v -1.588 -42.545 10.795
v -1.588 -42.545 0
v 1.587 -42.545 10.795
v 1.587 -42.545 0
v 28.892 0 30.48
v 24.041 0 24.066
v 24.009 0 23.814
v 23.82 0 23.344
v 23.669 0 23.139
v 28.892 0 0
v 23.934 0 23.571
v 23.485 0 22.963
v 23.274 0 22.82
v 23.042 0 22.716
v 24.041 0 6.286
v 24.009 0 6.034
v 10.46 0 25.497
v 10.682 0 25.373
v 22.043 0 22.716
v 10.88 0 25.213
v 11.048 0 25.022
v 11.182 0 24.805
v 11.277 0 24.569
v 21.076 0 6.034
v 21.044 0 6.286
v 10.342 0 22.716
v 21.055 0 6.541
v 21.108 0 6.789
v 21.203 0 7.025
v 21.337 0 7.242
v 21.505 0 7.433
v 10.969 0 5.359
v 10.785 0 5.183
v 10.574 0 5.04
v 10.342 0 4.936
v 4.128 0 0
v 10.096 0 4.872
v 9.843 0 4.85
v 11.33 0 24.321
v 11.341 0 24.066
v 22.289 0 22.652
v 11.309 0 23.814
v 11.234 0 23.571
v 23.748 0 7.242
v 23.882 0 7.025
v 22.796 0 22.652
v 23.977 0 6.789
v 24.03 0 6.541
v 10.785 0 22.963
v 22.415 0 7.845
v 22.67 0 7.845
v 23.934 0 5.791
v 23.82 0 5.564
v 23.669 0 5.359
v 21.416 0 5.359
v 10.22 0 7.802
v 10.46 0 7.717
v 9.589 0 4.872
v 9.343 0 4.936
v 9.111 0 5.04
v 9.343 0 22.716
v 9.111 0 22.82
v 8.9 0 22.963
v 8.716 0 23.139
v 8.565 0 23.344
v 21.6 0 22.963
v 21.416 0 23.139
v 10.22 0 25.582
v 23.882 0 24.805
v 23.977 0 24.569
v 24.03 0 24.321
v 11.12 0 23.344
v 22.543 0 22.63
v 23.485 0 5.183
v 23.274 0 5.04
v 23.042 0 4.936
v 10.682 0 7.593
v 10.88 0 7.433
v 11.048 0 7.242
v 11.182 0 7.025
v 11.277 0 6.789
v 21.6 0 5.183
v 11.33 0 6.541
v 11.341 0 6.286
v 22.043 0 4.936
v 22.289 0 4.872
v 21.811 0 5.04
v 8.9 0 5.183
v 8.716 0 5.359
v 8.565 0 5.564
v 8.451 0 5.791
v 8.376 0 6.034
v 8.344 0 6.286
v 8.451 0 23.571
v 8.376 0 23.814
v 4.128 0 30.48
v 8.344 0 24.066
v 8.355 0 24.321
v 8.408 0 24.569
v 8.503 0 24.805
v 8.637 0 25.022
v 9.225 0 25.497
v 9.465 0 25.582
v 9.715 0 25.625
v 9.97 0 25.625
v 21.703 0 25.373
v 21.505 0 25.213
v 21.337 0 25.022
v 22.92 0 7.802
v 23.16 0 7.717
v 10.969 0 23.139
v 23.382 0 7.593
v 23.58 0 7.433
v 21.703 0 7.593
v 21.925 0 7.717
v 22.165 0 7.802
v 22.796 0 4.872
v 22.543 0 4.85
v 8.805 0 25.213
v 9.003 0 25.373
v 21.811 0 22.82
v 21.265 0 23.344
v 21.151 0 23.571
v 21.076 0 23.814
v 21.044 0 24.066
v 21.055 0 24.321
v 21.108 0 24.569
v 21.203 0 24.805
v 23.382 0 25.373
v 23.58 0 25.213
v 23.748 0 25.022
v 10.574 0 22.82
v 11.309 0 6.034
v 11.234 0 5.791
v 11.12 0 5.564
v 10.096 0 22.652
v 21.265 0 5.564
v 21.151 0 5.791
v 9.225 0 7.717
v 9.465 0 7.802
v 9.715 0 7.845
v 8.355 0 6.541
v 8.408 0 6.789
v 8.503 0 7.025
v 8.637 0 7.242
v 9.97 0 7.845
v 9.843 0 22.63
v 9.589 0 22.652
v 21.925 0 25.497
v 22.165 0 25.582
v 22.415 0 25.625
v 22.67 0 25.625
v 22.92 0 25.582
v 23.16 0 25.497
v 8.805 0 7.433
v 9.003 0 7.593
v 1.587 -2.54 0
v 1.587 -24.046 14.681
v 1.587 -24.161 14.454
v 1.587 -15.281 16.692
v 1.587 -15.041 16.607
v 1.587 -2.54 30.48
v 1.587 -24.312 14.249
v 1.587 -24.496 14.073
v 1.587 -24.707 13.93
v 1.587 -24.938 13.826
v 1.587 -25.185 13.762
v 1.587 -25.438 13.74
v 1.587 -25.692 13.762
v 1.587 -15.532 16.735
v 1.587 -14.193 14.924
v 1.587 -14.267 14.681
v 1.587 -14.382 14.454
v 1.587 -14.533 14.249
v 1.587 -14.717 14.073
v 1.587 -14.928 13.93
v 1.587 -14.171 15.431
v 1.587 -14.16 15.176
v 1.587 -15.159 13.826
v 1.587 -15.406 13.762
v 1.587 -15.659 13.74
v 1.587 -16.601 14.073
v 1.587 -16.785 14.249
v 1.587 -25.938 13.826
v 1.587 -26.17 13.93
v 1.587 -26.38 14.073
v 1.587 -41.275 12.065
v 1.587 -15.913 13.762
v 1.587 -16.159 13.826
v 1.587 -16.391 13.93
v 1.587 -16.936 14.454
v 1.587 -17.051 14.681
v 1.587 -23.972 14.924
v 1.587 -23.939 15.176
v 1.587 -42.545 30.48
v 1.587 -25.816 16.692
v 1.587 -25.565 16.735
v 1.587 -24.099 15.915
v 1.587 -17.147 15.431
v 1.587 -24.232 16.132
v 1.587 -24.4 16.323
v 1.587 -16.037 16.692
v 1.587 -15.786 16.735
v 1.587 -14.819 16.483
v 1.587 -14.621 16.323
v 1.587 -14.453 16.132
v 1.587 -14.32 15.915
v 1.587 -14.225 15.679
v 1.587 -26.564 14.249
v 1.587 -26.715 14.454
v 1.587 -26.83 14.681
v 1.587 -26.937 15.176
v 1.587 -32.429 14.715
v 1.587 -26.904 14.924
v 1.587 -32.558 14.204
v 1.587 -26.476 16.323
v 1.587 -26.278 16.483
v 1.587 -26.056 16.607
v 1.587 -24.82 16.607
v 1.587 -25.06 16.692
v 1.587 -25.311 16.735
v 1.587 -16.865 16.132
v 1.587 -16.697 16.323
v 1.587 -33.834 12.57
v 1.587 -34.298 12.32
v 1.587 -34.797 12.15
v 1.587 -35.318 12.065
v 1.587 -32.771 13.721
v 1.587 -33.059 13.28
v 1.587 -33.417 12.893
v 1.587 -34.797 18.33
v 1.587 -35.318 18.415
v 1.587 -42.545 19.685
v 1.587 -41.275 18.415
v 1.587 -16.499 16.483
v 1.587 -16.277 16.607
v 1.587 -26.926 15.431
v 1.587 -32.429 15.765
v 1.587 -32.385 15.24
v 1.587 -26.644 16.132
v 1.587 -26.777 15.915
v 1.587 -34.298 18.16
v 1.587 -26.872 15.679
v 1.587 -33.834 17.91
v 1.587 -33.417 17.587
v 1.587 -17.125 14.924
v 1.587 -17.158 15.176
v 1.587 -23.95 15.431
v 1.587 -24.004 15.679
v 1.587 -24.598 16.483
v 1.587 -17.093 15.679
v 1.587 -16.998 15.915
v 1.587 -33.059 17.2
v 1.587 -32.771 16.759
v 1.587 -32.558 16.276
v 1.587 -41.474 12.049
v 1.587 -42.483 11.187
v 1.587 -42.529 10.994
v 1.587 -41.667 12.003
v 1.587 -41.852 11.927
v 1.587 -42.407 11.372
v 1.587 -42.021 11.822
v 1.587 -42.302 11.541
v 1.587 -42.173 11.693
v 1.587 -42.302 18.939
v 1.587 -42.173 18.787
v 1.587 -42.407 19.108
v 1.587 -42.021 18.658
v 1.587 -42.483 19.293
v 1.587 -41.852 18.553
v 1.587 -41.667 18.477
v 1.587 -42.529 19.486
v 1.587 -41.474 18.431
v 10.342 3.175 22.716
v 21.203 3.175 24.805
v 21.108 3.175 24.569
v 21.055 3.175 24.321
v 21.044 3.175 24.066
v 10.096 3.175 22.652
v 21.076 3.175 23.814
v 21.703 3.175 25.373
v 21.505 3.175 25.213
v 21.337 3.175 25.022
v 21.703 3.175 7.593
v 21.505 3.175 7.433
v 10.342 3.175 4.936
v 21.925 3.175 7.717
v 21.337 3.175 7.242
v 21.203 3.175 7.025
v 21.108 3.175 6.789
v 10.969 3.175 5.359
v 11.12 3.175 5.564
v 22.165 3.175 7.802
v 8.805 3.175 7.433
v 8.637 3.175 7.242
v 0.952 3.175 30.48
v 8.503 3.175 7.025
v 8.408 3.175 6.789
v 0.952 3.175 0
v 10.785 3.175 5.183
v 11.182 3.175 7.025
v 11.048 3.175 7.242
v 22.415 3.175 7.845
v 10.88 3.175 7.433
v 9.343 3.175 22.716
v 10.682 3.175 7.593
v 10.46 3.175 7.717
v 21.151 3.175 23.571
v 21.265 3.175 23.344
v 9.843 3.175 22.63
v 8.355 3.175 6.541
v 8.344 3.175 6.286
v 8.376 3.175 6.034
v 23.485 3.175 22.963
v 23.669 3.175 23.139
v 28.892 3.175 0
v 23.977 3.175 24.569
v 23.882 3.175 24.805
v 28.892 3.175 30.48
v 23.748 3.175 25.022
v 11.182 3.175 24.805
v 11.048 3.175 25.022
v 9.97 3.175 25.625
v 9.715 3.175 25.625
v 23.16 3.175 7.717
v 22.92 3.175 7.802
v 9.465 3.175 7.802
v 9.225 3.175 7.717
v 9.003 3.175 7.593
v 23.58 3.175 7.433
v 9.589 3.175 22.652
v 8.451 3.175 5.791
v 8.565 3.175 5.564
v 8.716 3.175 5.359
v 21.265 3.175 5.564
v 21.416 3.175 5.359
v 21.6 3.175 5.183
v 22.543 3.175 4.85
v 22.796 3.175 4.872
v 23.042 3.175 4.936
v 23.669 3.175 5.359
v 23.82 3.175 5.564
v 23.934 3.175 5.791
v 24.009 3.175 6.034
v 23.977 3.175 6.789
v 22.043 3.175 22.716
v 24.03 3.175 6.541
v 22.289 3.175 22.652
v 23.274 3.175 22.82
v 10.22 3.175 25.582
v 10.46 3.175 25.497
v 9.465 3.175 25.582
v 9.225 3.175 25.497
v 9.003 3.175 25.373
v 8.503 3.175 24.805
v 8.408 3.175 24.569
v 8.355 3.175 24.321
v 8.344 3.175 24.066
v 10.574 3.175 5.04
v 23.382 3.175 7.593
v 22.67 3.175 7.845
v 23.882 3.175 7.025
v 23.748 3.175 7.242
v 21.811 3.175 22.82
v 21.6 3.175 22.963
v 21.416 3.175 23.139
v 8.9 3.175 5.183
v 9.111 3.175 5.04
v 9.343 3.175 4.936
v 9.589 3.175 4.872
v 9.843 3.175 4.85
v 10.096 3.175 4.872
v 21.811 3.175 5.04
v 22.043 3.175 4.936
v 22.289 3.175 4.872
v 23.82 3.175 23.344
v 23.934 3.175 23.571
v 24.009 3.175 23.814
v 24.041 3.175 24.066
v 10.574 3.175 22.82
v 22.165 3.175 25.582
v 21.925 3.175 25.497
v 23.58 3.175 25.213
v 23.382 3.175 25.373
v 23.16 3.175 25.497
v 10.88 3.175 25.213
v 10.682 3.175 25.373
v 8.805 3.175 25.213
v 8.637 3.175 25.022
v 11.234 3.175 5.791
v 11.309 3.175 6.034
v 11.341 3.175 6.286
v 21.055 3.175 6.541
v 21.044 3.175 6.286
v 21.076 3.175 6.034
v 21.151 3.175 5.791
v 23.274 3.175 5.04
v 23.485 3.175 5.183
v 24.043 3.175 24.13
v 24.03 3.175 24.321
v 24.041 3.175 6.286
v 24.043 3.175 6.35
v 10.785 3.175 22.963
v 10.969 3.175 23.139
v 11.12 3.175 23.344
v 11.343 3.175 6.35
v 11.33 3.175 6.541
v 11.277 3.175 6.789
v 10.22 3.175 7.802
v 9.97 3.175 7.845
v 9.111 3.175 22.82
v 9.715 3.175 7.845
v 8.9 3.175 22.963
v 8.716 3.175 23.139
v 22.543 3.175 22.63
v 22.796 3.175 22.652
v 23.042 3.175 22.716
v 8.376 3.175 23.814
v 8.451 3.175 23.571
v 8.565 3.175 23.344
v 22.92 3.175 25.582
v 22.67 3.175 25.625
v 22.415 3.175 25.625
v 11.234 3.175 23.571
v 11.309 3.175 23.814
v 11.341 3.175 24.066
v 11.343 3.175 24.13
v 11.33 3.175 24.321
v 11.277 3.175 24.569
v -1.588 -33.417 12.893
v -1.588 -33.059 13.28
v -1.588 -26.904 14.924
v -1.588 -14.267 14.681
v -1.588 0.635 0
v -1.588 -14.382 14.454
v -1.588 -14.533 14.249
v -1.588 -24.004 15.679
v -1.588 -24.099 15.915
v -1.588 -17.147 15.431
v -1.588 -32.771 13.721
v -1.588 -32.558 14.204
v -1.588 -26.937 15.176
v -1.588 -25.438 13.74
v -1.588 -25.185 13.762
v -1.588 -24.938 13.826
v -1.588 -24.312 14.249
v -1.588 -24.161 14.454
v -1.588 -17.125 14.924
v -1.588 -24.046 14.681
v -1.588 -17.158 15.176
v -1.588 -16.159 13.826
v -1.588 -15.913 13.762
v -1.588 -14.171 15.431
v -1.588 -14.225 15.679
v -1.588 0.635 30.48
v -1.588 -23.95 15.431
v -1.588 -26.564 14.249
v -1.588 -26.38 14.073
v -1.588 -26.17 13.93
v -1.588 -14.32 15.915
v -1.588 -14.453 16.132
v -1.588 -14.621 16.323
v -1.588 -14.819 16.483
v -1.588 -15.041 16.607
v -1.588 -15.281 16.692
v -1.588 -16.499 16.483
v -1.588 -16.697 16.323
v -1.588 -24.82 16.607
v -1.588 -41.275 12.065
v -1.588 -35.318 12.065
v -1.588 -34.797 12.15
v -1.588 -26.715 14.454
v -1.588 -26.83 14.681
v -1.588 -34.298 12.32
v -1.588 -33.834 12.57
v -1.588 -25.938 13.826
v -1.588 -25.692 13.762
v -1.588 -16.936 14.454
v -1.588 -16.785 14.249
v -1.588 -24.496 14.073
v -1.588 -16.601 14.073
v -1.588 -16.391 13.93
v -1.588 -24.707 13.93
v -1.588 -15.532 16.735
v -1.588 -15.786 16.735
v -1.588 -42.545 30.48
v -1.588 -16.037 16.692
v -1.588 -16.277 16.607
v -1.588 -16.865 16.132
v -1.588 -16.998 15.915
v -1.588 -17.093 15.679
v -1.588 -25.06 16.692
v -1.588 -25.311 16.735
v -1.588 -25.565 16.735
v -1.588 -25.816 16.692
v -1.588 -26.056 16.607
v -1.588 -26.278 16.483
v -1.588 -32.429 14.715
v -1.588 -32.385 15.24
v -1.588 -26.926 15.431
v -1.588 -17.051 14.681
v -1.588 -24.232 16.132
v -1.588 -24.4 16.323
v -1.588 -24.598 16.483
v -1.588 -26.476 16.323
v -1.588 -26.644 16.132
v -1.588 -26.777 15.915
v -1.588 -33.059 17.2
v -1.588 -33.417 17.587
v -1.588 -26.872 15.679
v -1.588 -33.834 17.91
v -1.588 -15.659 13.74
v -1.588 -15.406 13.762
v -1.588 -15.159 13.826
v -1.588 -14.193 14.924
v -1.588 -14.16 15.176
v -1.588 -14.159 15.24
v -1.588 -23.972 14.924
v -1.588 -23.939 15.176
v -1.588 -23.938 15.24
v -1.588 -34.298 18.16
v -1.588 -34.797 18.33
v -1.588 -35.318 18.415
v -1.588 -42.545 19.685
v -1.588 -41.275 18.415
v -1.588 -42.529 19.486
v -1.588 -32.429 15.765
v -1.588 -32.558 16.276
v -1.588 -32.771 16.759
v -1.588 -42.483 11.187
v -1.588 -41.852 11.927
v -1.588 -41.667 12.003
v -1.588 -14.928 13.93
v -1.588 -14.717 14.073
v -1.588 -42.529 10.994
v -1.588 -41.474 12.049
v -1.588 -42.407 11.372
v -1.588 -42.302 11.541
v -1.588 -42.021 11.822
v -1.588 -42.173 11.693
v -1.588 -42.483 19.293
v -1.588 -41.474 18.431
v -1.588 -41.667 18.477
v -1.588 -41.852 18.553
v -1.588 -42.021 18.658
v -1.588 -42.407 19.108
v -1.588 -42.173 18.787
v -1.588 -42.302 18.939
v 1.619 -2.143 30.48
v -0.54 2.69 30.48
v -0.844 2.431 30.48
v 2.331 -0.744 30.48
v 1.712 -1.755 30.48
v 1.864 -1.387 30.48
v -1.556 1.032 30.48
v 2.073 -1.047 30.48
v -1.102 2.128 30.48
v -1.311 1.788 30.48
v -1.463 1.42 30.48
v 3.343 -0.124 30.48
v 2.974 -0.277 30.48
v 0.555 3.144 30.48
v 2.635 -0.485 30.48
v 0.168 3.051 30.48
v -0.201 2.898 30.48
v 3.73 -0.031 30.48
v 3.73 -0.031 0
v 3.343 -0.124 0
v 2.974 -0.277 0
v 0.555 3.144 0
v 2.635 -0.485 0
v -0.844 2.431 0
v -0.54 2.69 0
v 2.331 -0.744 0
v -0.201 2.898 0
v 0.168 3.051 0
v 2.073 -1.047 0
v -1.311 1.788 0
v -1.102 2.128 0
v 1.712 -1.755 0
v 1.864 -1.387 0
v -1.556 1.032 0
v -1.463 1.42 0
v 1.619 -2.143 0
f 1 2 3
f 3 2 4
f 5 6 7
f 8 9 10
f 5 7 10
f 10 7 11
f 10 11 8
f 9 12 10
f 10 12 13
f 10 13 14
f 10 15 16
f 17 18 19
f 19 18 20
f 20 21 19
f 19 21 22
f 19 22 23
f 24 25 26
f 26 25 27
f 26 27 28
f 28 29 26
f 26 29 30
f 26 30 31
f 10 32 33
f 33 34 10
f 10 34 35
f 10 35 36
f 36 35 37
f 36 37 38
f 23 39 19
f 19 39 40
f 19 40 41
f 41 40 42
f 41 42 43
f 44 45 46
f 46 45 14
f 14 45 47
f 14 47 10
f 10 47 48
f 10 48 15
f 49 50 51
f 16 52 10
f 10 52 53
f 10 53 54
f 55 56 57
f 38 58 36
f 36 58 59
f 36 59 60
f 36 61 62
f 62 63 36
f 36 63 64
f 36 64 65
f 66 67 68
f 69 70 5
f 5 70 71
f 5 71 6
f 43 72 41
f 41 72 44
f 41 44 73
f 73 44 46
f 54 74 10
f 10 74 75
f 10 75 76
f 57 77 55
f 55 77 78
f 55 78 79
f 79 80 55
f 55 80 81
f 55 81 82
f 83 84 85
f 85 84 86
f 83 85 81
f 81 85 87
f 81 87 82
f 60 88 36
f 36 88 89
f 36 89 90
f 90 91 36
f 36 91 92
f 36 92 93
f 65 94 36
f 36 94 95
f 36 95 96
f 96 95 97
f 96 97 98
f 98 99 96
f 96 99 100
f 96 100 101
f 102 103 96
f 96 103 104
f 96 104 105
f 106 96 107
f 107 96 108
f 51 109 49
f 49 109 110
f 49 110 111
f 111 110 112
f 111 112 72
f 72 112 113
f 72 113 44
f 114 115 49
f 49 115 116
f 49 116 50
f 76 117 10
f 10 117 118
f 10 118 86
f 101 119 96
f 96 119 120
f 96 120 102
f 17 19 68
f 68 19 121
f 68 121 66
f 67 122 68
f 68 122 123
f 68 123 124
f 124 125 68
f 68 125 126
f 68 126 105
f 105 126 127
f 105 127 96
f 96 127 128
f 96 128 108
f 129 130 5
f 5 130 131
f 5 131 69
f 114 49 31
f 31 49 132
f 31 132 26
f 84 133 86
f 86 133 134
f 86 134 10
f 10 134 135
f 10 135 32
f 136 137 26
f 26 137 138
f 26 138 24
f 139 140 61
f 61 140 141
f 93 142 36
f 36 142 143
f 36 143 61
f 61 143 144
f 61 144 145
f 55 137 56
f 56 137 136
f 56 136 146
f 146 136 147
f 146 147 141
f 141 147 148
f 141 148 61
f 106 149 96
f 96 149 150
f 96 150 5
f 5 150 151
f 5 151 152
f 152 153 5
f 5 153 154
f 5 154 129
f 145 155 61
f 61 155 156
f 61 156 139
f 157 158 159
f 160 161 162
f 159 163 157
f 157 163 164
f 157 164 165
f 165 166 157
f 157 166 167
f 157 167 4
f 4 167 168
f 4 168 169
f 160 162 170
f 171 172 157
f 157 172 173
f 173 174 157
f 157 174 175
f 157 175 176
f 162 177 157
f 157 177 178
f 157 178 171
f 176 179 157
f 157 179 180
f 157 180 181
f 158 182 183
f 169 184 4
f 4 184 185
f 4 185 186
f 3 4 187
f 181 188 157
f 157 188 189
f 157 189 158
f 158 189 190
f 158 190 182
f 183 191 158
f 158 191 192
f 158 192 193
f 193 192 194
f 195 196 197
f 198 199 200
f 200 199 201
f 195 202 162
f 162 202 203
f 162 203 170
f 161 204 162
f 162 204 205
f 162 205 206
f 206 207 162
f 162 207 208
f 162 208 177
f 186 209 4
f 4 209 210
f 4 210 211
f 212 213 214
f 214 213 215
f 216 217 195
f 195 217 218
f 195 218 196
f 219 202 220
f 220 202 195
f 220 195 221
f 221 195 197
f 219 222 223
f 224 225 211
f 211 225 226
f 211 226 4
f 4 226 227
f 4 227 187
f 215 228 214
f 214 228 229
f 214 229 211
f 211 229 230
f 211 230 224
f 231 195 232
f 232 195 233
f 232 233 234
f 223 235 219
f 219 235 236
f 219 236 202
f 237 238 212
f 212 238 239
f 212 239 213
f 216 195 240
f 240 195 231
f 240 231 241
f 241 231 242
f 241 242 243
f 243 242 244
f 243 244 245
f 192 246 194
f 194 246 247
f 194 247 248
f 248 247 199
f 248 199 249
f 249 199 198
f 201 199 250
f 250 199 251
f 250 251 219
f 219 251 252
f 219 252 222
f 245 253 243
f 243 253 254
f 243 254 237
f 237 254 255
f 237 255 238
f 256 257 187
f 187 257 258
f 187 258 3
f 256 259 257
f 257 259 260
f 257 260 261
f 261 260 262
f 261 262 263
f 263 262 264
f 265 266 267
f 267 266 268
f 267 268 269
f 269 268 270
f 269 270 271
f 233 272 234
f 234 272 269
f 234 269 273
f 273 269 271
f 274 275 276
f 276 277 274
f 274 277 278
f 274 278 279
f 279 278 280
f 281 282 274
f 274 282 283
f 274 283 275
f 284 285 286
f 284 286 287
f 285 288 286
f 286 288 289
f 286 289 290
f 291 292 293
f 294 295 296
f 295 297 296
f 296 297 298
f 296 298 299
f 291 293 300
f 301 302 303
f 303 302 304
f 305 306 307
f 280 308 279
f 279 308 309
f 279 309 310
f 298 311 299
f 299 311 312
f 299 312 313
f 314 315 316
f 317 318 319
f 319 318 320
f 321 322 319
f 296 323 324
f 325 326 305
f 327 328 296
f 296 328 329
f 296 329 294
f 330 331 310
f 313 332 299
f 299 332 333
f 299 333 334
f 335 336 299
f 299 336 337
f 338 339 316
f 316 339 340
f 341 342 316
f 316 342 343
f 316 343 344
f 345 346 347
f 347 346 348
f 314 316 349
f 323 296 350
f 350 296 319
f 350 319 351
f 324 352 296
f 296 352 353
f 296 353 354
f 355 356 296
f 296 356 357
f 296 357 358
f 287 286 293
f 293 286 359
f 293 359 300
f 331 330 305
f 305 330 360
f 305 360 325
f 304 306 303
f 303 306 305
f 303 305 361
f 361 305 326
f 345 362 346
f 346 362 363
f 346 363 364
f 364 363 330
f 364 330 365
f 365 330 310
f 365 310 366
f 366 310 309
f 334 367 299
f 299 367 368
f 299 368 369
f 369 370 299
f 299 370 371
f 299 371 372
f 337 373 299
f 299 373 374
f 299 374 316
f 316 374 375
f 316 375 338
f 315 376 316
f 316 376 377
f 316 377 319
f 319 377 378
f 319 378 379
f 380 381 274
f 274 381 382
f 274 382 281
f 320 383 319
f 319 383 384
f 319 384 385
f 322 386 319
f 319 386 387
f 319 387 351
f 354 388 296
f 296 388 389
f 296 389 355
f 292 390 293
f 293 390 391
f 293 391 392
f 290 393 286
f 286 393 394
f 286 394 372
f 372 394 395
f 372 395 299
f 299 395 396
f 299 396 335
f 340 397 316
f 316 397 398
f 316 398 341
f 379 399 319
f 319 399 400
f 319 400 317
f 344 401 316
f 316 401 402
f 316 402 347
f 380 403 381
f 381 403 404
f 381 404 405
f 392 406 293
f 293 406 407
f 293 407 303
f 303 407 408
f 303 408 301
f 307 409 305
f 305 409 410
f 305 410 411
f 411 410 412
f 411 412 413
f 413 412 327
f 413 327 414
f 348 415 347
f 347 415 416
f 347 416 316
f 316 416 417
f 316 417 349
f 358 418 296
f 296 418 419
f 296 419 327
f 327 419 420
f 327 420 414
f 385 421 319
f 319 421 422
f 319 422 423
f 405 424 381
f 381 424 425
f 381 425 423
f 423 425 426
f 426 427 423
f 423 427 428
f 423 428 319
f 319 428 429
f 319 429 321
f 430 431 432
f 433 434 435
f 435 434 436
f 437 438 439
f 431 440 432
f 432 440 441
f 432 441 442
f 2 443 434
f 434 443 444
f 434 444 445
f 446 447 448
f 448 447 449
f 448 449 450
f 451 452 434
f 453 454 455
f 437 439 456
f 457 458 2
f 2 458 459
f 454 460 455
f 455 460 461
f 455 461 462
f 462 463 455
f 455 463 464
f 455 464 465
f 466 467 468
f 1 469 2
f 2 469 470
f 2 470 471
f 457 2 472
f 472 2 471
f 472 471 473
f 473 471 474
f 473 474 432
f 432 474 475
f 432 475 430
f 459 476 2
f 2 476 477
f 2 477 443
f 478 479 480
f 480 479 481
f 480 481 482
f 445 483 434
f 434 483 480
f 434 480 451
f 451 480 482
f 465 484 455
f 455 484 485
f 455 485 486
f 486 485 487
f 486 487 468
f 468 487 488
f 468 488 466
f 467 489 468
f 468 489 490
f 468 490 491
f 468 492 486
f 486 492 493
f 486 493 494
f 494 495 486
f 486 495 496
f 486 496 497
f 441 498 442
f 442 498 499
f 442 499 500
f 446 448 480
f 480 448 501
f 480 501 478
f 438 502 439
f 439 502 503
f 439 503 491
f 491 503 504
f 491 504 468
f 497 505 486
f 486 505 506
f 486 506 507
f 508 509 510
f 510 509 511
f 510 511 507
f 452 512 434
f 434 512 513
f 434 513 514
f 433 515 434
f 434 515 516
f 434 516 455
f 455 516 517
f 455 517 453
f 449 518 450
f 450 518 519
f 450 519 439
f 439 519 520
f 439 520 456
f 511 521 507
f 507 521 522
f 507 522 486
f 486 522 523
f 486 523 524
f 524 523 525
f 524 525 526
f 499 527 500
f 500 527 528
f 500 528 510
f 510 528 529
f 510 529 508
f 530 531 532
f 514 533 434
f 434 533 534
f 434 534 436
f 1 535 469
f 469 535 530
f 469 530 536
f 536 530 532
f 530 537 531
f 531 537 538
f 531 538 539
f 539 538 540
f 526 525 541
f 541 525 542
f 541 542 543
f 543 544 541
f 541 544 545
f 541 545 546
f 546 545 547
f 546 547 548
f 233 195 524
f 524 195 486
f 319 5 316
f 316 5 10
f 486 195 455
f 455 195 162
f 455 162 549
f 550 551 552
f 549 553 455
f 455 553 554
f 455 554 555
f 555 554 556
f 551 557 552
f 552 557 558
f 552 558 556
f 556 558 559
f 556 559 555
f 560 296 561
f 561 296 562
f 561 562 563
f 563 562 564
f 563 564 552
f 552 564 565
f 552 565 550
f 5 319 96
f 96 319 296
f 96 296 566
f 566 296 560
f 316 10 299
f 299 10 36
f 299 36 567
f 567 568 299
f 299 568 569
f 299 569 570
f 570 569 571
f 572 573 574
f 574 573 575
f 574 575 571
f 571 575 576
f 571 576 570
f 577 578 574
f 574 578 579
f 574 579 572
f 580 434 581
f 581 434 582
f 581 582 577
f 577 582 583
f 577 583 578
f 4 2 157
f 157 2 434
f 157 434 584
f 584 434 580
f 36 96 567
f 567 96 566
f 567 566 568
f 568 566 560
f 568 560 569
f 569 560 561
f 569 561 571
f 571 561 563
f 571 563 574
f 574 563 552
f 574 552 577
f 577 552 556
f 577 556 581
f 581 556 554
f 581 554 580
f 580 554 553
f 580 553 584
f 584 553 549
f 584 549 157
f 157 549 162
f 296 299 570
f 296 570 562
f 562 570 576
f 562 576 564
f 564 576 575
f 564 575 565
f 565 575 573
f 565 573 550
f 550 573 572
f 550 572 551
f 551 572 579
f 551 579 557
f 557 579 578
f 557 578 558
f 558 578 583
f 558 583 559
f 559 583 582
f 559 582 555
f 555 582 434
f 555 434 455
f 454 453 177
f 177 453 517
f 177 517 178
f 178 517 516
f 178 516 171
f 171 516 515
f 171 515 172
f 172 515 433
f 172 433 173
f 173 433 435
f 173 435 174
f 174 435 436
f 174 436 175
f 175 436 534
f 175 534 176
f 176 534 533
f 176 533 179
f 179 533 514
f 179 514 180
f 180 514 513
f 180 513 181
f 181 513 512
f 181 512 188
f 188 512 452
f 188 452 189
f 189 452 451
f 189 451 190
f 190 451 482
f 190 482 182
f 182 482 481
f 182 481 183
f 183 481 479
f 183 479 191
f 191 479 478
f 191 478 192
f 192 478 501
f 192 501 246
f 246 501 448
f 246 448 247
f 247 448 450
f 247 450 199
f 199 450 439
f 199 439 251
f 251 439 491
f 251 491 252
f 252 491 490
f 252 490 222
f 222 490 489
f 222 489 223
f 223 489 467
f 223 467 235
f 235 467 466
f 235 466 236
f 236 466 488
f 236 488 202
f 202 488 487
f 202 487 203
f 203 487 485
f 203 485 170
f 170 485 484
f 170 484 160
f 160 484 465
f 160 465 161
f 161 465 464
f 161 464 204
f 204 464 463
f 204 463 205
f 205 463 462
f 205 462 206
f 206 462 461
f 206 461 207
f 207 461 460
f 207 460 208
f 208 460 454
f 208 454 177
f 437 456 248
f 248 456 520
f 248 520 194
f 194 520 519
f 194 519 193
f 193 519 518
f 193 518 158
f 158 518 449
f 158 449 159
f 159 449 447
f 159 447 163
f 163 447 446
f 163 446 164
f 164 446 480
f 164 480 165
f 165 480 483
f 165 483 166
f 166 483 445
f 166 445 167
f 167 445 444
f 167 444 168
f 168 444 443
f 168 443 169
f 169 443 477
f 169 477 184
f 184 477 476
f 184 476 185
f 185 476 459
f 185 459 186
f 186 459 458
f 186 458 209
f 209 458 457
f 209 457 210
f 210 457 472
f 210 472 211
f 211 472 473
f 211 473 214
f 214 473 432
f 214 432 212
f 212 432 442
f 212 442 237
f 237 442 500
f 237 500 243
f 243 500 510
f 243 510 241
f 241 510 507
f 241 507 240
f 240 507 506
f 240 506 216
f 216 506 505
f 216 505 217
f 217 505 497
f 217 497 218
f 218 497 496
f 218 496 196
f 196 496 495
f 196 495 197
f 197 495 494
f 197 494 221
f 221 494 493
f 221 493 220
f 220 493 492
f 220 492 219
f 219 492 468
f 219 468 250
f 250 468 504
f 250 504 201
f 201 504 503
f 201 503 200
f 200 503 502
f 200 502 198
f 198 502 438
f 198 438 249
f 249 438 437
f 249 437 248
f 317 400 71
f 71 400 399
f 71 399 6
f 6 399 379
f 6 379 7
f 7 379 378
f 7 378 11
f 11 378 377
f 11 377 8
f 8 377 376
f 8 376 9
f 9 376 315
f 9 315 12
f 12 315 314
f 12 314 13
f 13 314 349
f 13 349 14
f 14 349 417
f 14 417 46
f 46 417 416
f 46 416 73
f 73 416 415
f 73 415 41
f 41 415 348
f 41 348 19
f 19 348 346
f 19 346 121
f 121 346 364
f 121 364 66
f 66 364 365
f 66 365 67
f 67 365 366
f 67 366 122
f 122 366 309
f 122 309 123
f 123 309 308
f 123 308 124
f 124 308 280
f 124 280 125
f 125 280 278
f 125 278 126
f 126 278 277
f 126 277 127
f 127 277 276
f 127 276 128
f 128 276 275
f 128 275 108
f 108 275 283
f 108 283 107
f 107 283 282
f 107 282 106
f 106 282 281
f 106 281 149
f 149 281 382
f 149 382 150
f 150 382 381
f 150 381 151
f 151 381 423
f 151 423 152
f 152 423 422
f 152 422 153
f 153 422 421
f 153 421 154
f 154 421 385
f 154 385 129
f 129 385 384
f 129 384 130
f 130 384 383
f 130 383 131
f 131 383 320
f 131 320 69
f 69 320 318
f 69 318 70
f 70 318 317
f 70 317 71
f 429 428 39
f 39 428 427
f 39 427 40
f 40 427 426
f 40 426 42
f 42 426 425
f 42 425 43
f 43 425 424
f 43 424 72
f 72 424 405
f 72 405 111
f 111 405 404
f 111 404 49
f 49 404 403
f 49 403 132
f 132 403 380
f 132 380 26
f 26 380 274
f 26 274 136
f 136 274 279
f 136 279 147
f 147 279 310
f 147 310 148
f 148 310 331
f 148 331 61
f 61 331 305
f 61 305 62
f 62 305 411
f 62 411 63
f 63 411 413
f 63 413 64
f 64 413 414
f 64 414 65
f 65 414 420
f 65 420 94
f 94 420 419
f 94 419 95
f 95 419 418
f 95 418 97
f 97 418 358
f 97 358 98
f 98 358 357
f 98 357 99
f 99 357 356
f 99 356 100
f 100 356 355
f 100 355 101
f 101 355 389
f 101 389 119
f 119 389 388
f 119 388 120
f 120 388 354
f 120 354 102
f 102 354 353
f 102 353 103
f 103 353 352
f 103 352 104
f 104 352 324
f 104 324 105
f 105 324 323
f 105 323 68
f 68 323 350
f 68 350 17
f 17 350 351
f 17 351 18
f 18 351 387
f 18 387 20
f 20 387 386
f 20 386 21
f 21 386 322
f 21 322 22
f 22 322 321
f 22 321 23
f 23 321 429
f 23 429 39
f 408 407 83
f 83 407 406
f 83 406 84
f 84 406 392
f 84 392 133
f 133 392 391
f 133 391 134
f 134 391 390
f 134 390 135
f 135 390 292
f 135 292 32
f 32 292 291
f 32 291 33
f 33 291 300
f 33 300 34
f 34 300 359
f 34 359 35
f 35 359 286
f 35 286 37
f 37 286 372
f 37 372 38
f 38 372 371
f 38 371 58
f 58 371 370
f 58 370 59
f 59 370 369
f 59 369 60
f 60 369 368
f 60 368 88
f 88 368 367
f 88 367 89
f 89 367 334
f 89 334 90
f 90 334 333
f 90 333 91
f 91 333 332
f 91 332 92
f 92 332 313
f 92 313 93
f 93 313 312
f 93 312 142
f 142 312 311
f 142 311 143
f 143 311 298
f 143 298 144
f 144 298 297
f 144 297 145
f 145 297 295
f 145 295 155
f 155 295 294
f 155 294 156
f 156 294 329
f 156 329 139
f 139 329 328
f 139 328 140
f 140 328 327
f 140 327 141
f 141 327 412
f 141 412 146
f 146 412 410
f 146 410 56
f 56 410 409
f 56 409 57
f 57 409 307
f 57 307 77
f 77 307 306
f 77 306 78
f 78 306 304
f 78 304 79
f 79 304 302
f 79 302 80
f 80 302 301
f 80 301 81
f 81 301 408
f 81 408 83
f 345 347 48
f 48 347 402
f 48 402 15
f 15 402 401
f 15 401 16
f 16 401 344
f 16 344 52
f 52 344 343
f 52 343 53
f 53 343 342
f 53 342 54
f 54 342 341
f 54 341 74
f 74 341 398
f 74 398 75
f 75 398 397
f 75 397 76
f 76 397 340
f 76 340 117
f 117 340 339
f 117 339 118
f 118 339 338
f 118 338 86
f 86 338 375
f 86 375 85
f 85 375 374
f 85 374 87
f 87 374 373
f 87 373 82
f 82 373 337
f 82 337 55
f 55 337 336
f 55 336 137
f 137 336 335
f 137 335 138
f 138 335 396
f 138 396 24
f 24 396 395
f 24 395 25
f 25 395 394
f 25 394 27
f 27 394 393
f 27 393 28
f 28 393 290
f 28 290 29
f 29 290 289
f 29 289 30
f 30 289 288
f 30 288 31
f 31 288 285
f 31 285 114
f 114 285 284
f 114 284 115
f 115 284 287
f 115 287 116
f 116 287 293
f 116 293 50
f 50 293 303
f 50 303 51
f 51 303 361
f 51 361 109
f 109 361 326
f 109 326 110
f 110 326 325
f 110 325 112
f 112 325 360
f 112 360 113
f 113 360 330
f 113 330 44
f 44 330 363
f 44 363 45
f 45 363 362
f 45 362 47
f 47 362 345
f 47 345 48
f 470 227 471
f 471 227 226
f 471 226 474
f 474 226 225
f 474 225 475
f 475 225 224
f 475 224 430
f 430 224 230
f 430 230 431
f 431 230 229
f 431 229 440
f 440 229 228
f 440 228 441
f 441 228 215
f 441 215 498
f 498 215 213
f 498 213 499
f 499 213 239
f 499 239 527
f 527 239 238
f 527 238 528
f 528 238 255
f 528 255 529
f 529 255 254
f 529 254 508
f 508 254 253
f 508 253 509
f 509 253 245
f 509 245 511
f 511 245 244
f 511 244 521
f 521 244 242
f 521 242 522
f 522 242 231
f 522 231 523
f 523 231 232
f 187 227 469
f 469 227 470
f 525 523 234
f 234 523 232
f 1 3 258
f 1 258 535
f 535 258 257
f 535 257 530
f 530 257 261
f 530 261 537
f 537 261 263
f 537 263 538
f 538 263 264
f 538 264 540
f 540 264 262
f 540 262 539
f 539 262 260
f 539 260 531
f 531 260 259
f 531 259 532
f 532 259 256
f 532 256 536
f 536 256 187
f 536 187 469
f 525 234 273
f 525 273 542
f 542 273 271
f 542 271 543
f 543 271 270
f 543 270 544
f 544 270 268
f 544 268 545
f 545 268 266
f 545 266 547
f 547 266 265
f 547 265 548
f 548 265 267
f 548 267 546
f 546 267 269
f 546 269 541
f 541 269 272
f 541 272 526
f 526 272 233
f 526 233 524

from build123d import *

# Parameters (mm, degrees)
BOSS_EXTRUDE1_DEPTH          = 30.48
FILLET1_R                    = 2.54
F_3_0_3_DIAMETER_HOLE2_D     = 3
F_3_0_3_DIAMETER_HOLE2_DEPTH = 3.175
F_3_0_3_DIAMETER_HOLE1_D     = 3
F_3_0_3_DIAMETER_HOLE1_DEPTH = 3.175
CUT_EXTRUDE1_DEPTH           = 3.175
FILLET2_R                    = 1.27


with BuildPart() as part:
    # Sketch1 → Boss-Extrude1 (new body)
    with BuildSketch(Plane.XY):
        Polygon((-1.5875, 3.175), (-1.5875, -42.545), (1.5875, -42.545), (1.5875, 0), (28.8925, 0), (28.8925, 3.175), align=None)
    extrude(amount=BOSS_EXTRUDE1_DEPTH)

    # Fillet1
    fillet1_edges = [part.edges().sort_by_distance(p)[0] for p in [
        (1.5875, 0, 15.24),
        (-1.5875, 3.175, 15.24),
    ]]
    fillet(fillet1_edges, radius=FILLET1_R)

    # Ø3.0 (3) Diameter Hole2
    with Locations(Plane(origin=(1.5875, 0, 0), x_dir=(0, 0, -1), z_dir=(1, 0, 0))):
        with Locations((-15.24, -15.6591), (-15.24, -25.4381)):
            Hole(F_3_0_3_DIAMETER_HOLE2_D / 2, depth=F_3_0_3_DIAMETER_HOLE2_DEPTH)

    # Ø3.0 (3) Diameter Hole1
    with Locations(Plane(origin=(0, 0, 0), x_dir=(-1, 0, 0), z_dir=(0, -1, 0))):
        with Locations((-22.5425, -6.35), (-9.8425, -6.35), (-9.8425, -24.13), (-22.5425, -24.13)):
            Hole(F_3_0_3_DIAMETER_HOLE1_D / 2, depth=F_3_0_3_DIAMETER_HOLE1_DEPTH)

    # Sketch7 → Cut-Extrude1 (cut)
    with BuildSketch(Plane(origin=(1.5875, 0, 0), x_dir=(0, 0, -1), z_dir=(1, 0, 0))):
        with BuildLine():
            Line((-18.415, -42.545), (-18.415, -35.317518126))
            ThreePointArc((-18.415, -35.317518126), (-15.24, -32.385), (-12.065, -35.317518126))
            Line((-12.065, -35.317518126), (-12.065, -42.545))
            Line((-12.065, -42.545), (-18.415, -42.545))
        make_face()
    extrude(amount=-CUT_EXTRUDE1_DEPTH, mode=Mode.SUBTRACT)

    # Fillet2
    fillet2_edges = [part.edges().sort_by_distance(p)[0] for p in [
        (0, -42.545, 12.065),
        (0, -42.545, 18.415),
    ]]
    fillet(fillet2_edges, radius=FILLET2_R)


solid = part.part
